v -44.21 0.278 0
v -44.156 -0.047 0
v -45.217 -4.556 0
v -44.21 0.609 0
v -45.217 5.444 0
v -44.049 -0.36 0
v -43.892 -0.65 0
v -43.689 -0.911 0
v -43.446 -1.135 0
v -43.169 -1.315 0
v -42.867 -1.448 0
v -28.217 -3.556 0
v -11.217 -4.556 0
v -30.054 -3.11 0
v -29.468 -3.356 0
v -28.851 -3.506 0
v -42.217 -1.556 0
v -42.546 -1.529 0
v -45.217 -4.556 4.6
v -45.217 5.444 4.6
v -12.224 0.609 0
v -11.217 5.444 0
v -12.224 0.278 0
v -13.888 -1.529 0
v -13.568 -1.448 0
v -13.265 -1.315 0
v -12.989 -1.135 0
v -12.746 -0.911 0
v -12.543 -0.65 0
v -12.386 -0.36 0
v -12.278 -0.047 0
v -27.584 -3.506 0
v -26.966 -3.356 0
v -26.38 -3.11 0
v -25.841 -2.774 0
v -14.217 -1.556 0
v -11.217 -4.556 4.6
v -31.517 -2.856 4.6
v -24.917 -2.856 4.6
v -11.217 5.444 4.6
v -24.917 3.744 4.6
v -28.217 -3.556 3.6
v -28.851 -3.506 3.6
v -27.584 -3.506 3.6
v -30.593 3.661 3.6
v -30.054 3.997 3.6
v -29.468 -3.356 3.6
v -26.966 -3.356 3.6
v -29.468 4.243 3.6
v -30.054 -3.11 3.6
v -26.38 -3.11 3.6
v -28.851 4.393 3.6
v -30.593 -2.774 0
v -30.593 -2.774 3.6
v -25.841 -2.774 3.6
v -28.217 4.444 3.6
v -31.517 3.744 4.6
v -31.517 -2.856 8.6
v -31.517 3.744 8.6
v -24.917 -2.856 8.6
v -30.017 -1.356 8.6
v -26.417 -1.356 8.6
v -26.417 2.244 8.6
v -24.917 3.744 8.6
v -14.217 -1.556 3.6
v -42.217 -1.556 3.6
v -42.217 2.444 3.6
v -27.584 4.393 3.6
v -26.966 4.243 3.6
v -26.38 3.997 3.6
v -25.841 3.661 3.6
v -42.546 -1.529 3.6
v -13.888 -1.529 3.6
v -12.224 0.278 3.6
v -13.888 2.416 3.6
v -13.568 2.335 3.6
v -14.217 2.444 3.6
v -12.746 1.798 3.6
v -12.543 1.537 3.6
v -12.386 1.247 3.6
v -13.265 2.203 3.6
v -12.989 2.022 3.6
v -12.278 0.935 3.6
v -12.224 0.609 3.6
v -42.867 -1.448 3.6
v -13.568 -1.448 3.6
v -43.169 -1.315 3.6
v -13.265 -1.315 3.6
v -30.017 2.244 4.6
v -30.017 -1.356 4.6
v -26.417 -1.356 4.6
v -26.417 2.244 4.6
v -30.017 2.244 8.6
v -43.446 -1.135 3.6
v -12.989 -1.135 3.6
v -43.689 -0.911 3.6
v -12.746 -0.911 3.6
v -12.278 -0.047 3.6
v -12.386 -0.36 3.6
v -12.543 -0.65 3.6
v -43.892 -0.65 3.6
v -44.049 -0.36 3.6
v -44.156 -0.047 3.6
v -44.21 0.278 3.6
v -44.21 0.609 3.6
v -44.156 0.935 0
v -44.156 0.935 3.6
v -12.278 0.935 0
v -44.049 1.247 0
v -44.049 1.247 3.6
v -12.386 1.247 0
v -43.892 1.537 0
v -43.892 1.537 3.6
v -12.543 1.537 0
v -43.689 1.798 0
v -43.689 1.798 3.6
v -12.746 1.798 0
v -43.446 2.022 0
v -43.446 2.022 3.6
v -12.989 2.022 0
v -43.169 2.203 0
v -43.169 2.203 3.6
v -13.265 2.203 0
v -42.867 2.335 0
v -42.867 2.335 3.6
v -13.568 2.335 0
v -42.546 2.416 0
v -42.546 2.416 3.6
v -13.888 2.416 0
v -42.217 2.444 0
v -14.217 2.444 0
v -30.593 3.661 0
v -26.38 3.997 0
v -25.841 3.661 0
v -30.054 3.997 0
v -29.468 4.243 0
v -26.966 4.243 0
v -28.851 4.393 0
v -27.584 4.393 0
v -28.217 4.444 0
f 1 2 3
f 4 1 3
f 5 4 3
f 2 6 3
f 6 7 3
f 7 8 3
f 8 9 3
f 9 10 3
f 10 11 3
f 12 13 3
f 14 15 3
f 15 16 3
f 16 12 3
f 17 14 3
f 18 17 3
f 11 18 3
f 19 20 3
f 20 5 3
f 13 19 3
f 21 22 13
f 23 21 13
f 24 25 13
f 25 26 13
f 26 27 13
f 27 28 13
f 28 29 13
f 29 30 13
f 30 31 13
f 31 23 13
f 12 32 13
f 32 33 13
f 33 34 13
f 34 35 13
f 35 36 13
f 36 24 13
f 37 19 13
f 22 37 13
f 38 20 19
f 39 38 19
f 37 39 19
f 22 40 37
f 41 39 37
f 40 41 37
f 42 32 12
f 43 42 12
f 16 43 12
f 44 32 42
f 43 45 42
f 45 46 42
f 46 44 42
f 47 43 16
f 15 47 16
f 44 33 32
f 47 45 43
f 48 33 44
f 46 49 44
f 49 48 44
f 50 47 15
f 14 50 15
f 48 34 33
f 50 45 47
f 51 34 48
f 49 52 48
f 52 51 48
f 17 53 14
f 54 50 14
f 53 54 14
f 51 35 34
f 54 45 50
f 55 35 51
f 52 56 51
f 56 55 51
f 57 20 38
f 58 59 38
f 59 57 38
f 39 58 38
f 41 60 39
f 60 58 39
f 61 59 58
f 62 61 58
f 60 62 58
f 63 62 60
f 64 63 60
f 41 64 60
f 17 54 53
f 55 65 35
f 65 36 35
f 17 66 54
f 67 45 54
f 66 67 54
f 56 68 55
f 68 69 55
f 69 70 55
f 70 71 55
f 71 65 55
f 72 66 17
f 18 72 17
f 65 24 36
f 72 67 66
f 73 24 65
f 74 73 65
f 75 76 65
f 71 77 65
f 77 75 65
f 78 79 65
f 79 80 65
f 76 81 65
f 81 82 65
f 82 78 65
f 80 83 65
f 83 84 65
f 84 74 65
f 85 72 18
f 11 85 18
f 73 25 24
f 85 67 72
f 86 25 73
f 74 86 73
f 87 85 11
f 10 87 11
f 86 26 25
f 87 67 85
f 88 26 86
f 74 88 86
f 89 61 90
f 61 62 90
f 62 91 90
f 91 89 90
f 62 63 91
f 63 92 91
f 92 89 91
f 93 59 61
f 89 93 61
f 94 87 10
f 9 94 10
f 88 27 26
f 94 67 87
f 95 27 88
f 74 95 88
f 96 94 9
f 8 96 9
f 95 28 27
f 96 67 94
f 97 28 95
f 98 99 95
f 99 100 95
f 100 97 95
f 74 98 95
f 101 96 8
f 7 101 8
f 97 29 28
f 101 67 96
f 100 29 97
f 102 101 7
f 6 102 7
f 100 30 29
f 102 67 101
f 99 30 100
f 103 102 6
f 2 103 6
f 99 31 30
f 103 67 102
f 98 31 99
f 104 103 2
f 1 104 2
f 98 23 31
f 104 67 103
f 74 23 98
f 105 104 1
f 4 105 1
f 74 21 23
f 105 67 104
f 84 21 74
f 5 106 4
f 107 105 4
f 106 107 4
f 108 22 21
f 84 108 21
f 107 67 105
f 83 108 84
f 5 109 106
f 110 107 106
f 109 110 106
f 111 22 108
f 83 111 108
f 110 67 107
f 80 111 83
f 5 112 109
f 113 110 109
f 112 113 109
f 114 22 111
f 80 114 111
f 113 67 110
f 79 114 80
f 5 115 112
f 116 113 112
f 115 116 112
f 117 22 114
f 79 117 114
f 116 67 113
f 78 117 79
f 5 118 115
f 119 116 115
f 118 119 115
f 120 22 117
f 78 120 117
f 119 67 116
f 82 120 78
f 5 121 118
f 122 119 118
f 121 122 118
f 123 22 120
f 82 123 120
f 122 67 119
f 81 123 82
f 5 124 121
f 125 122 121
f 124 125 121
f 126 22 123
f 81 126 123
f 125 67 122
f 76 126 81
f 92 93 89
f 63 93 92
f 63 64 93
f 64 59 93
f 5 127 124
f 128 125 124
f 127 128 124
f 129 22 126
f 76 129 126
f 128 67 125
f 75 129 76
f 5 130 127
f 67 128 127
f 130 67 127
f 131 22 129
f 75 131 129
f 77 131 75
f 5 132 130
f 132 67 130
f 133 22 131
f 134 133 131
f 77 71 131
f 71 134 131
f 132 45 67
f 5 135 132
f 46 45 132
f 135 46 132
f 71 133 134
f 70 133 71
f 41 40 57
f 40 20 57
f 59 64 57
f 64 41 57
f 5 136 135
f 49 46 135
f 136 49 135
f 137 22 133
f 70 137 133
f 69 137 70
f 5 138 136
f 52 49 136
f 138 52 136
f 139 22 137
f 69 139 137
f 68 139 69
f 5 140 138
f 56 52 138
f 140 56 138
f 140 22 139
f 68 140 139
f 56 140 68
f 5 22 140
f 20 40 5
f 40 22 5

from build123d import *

# Parameters (mm, degrees)
CROQUIS1_W              = 34
CROQUIS1_H              = 10
SALIENTE_EXTRUIR1_DEPTH = 3.6
CROQUIS2_W              = 34
CROQUIS2_H              = 10
SALIENTE_EXTRUIR2_DEPTH = 1
CROQUIS3_W              = 6.6
CROQUIS3_H              = 6.6
CROQUIS3_W_2            = 3.6
CROQUIS3_H_2            = 3.6
SALIENTE_EXTRUIR3_DEPTH = 4


with BuildPart() as part:
    # Croquis1 → Saliente-Extruir1 (new body)
    with BuildSketch(Plane.XY):
        with Locations((-28.217187331, 0.443569554)):
            Rectangle(CROQUIS1_W, CROQUIS1_H)
        with BuildLine():
            Line((-25.840984713, 3.661280093), (-14.217187331, 2.443569554))
            ThreePointArc((-14.217187331, 2.443569554), (-12.217187331, 0.443569554), (-14.217187331, -1.556430446))
            Line((-14.217187331, -1.556430446), (-25.840984713, -2.774140986))
            ThreePointArc((-25.840984713, -2.774140986), (-28.217187331, -3.556430446), (-30.593389949, -2.774140986))
            Line((-30.593389949, -2.774140986), (-42.217187331, -1.556430446))
            ThreePointArc((-42.217187331, -1.556430446), (-44.217187331, 0.443569554), (-42.217187331, 2.443569554))
            Line((-42.217187331, 2.443569554), (-30.593389949, 3.661280093))
            ThreePointArc((-30.593389949, 3.661280093), (-28.217187331, 4.443569554), (-25.840984713, 3.661280093))
        make_face(mode=Mode.SUBTRACT)
    extrude(amount=SALIENTE_EXTRUIR1_DEPTH)

    # Croquis2 → Saliente-Extruir2 (add)
    with BuildSketch(Plane.XY.offset(3.6)):
        with Locations((-28.217187331, 0.443569554)):
            Rectangle(CROQUIS2_W, CROQUIS2_H)
    extrude(amount=SALIENTE_EXTRUIR2_DEPTH)

    # Croquis3 → Saliente-Extruir3 (add)
    with BuildSketch(Plane.XY.offset(4.6)):
        with Locations((-28.217187331, 0.443569554)):
            Rectangle(CROQUIS3_W, CROQUIS3_H)
        with Locations((-28.217187331, 0.443569554)):
            Rectangle(CROQUIS3_W_2, CROQUIS3_H_2, mode=Mode.SUBTRACT)
    extrude(amount=SALIENTE_EXTRUIR3_DEPTH)


solid = part.part
